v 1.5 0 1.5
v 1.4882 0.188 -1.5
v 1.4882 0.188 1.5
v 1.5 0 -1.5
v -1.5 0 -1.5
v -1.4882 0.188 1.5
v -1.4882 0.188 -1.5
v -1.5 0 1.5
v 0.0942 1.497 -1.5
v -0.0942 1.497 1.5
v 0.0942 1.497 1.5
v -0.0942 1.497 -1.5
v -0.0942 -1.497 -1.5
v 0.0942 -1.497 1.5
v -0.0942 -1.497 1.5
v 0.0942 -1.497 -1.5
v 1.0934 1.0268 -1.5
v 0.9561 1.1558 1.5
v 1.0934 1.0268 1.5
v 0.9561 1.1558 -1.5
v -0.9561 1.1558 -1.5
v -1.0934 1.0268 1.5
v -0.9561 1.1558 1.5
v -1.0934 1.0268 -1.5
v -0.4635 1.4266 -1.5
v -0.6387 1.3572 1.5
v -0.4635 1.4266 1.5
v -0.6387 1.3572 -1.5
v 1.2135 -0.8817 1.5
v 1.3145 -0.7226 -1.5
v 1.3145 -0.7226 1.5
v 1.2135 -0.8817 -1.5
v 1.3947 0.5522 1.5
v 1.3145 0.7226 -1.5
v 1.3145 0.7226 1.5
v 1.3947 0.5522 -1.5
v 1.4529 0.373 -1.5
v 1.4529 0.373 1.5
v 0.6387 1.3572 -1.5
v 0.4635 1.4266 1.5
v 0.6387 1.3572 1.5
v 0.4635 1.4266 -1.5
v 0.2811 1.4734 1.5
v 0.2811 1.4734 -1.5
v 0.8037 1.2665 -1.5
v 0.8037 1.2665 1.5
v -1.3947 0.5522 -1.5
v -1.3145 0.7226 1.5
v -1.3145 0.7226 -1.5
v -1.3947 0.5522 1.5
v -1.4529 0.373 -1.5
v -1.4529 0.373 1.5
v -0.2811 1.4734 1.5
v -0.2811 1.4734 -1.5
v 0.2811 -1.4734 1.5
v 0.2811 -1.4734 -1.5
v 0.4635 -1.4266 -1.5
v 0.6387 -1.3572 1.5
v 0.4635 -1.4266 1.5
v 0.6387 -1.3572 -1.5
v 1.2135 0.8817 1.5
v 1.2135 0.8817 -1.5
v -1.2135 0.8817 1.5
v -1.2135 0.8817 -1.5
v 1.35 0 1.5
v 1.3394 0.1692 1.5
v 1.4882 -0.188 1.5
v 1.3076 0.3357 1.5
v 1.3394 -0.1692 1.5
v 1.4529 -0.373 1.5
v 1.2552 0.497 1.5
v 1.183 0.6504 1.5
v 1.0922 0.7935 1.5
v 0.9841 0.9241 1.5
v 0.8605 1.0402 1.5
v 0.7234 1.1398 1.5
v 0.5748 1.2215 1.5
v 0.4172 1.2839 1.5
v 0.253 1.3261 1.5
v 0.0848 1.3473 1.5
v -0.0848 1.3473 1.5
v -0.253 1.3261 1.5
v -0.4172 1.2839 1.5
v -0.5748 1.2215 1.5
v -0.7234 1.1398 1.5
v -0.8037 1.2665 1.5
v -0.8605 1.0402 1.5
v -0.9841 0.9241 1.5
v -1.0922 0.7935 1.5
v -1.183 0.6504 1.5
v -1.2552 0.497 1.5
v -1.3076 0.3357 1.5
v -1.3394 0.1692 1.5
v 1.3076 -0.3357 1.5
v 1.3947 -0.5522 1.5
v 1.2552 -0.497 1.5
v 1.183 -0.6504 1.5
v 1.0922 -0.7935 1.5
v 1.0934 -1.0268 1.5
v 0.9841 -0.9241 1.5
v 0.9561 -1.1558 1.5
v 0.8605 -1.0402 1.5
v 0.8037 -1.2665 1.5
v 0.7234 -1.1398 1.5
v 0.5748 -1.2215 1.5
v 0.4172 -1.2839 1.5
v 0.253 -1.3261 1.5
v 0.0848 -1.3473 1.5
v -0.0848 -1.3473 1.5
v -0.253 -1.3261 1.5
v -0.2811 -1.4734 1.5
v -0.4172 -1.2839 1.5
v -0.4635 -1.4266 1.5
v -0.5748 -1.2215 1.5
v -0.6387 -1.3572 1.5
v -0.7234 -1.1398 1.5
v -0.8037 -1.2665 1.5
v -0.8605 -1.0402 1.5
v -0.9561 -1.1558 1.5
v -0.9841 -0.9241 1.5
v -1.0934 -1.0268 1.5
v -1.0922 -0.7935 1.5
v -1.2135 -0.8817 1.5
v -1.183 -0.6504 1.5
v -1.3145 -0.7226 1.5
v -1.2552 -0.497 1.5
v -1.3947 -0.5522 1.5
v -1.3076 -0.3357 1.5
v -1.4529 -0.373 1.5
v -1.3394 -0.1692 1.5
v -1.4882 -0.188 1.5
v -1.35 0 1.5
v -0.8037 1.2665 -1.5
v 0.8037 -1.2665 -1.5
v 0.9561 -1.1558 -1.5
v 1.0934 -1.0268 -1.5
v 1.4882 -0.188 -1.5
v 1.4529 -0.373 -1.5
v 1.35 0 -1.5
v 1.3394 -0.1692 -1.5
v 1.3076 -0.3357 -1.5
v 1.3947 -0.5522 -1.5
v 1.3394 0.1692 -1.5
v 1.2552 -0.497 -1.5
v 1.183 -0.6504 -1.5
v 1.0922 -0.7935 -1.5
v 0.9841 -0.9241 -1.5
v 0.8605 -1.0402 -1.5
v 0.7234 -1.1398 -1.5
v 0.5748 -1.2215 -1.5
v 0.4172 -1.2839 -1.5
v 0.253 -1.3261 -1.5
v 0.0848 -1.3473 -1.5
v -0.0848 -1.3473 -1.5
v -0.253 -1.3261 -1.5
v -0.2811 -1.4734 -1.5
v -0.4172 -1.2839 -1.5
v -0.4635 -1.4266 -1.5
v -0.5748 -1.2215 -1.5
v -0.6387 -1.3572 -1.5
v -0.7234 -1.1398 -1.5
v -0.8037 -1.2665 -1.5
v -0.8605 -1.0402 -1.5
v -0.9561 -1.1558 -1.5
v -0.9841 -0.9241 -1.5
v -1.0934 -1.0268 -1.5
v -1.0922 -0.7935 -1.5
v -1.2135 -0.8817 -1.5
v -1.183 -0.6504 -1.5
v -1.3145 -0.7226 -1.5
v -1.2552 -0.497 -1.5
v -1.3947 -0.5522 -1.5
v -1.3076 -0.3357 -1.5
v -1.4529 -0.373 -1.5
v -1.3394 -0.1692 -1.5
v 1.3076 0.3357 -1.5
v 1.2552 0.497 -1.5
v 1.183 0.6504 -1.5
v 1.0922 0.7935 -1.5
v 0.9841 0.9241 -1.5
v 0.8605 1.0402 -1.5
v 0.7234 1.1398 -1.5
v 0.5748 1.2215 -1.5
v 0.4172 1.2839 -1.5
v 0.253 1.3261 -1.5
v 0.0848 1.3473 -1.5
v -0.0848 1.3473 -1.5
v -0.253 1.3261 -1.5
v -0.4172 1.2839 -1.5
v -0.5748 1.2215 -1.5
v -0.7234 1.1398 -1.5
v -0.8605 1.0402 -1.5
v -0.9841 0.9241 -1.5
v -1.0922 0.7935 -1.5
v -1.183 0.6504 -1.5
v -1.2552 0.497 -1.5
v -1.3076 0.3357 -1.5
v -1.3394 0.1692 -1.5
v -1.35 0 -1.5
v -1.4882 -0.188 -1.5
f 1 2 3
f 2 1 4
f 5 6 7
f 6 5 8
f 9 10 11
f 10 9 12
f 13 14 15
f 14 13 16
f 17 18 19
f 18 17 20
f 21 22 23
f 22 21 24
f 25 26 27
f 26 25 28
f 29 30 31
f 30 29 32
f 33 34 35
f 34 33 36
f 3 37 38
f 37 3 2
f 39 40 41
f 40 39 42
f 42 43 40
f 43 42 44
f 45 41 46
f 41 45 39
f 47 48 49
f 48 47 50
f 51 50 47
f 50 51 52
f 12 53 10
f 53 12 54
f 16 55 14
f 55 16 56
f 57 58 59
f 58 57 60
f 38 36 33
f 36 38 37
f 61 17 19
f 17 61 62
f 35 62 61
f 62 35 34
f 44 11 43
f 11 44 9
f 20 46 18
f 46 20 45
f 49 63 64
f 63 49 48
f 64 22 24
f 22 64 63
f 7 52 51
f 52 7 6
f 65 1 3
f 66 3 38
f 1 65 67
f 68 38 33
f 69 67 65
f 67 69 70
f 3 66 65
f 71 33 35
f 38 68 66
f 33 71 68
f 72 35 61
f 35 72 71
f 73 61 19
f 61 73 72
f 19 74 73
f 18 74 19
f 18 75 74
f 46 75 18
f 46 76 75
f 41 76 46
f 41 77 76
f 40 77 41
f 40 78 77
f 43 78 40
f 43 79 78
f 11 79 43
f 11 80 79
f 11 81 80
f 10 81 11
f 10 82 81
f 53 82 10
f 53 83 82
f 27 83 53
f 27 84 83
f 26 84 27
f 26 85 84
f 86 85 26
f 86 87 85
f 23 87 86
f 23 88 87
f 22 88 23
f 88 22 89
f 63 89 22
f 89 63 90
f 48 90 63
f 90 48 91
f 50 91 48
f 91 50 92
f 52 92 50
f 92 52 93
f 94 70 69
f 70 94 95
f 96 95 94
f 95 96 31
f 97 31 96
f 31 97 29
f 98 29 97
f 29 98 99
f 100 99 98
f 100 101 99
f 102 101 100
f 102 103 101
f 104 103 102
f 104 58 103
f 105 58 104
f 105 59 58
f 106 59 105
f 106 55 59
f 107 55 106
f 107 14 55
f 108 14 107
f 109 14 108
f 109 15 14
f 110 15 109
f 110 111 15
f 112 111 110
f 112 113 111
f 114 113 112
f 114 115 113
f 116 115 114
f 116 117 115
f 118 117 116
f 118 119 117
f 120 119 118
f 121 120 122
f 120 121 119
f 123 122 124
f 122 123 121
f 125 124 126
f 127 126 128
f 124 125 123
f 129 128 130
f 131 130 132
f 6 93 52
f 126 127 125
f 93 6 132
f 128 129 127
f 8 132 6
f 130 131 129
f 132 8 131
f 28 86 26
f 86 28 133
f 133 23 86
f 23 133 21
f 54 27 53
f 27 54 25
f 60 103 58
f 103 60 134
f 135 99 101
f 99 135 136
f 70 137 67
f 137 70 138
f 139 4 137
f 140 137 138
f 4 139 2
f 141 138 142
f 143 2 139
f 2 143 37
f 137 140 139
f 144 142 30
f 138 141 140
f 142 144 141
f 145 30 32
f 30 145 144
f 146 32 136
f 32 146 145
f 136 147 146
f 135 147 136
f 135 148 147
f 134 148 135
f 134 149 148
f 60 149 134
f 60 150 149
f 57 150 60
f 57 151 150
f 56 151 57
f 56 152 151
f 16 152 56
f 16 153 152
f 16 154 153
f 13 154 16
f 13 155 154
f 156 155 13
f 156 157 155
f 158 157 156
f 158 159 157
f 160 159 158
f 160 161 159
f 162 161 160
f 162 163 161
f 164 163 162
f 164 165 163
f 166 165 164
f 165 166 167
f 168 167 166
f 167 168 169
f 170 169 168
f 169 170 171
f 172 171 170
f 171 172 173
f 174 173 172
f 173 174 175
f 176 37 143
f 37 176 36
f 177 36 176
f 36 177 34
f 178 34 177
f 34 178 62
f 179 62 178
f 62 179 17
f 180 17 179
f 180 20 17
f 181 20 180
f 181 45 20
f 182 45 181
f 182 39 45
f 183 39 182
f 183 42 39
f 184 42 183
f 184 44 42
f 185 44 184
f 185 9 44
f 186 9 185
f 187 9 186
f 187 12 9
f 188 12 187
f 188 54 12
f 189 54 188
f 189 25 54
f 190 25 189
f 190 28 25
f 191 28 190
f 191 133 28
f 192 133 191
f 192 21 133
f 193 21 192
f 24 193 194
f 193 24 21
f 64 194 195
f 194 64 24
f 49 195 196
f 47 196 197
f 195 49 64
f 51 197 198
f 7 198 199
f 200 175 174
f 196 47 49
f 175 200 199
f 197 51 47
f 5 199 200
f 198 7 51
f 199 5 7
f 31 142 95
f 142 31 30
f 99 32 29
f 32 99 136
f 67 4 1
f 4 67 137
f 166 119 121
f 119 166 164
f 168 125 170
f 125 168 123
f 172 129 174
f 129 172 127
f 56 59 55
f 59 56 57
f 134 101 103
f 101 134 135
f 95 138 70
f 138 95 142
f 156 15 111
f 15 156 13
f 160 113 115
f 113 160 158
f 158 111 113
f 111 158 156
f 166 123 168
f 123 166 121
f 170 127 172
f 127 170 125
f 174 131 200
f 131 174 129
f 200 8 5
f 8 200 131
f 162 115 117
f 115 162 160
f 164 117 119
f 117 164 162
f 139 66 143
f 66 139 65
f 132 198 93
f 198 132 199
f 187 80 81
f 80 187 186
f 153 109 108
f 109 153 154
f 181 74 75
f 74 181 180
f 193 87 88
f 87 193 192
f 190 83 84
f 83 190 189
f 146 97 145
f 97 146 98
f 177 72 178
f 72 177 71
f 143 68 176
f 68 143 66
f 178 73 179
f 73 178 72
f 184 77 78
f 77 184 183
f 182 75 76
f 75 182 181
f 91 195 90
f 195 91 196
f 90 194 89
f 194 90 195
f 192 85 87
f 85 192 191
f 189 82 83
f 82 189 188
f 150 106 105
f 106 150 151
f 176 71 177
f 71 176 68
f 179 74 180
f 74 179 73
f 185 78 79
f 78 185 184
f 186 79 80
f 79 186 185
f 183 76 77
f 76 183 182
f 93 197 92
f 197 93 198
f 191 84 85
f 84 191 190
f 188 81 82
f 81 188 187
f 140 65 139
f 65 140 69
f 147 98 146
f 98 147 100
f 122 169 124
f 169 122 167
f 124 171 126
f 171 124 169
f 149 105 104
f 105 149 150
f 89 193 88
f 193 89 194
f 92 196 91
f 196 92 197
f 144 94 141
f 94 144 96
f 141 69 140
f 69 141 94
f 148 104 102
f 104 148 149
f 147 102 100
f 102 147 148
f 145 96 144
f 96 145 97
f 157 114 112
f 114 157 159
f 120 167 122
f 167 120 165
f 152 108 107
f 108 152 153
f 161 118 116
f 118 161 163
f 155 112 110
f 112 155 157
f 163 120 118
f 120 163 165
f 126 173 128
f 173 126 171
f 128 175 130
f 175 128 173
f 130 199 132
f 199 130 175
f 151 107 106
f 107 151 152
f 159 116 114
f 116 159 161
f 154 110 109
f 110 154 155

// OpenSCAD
$fn = 50;


difference() {
	union() {
		translate(v = [0, 0, -1.5000000000]) {
			cylinder(h = 3, r = 1.5000000000);
		}
	}
	union() {
		translate(v = [0, 0, -100.0000000000]) {
			cylinder(h = 200, r = 1.3500000000);
		}
	}
}
